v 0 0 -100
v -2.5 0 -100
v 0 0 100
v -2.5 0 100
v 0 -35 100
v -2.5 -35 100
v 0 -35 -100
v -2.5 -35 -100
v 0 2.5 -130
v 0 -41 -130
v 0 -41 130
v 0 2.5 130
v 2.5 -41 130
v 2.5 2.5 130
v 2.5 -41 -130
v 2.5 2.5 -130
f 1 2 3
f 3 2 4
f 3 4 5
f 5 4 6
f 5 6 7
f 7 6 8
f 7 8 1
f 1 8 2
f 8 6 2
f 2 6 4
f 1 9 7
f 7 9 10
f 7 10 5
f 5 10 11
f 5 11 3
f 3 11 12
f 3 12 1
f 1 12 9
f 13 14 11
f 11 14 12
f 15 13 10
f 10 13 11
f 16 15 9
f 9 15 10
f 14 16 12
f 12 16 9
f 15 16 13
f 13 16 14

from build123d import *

# Parameters (mm, degrees)
SKETCH1_W           = 35
SKETCH1_H           = 200
BOSS_EXTRUDE1_DEPTH = 2.5
SKETCH2_W           = 260
SKETCH2_H           = 43.5
BOSS_EXTRUDE2_DEPTH = 2.5


with BuildPart() as part:
    # Sketch1 → Boss-Extrude1 (new body, symmetric)
    with BuildSketch(Plane.YZ):
        with Locations((-17.5, 0)):
            Rectangle(SKETCH1_W, SKETCH1_H)
    extrude(amount=BOSS_EXTRUDE1_DEPTH, both=True)

    # Sketch2 → Boss-Extrude2 (add)
    with BuildSketch(Plane(origin=(0, 0, 0), x_dir=(0, 0, -1), z_dir=(1, 0, 0))):
        with Locations((0, -19.25)):
            Rectangle(SKETCH2_W, SKETCH2_H)
    extrude(amount=BOSS_EXTRUDE2_DEPTH)


solid = part.part
